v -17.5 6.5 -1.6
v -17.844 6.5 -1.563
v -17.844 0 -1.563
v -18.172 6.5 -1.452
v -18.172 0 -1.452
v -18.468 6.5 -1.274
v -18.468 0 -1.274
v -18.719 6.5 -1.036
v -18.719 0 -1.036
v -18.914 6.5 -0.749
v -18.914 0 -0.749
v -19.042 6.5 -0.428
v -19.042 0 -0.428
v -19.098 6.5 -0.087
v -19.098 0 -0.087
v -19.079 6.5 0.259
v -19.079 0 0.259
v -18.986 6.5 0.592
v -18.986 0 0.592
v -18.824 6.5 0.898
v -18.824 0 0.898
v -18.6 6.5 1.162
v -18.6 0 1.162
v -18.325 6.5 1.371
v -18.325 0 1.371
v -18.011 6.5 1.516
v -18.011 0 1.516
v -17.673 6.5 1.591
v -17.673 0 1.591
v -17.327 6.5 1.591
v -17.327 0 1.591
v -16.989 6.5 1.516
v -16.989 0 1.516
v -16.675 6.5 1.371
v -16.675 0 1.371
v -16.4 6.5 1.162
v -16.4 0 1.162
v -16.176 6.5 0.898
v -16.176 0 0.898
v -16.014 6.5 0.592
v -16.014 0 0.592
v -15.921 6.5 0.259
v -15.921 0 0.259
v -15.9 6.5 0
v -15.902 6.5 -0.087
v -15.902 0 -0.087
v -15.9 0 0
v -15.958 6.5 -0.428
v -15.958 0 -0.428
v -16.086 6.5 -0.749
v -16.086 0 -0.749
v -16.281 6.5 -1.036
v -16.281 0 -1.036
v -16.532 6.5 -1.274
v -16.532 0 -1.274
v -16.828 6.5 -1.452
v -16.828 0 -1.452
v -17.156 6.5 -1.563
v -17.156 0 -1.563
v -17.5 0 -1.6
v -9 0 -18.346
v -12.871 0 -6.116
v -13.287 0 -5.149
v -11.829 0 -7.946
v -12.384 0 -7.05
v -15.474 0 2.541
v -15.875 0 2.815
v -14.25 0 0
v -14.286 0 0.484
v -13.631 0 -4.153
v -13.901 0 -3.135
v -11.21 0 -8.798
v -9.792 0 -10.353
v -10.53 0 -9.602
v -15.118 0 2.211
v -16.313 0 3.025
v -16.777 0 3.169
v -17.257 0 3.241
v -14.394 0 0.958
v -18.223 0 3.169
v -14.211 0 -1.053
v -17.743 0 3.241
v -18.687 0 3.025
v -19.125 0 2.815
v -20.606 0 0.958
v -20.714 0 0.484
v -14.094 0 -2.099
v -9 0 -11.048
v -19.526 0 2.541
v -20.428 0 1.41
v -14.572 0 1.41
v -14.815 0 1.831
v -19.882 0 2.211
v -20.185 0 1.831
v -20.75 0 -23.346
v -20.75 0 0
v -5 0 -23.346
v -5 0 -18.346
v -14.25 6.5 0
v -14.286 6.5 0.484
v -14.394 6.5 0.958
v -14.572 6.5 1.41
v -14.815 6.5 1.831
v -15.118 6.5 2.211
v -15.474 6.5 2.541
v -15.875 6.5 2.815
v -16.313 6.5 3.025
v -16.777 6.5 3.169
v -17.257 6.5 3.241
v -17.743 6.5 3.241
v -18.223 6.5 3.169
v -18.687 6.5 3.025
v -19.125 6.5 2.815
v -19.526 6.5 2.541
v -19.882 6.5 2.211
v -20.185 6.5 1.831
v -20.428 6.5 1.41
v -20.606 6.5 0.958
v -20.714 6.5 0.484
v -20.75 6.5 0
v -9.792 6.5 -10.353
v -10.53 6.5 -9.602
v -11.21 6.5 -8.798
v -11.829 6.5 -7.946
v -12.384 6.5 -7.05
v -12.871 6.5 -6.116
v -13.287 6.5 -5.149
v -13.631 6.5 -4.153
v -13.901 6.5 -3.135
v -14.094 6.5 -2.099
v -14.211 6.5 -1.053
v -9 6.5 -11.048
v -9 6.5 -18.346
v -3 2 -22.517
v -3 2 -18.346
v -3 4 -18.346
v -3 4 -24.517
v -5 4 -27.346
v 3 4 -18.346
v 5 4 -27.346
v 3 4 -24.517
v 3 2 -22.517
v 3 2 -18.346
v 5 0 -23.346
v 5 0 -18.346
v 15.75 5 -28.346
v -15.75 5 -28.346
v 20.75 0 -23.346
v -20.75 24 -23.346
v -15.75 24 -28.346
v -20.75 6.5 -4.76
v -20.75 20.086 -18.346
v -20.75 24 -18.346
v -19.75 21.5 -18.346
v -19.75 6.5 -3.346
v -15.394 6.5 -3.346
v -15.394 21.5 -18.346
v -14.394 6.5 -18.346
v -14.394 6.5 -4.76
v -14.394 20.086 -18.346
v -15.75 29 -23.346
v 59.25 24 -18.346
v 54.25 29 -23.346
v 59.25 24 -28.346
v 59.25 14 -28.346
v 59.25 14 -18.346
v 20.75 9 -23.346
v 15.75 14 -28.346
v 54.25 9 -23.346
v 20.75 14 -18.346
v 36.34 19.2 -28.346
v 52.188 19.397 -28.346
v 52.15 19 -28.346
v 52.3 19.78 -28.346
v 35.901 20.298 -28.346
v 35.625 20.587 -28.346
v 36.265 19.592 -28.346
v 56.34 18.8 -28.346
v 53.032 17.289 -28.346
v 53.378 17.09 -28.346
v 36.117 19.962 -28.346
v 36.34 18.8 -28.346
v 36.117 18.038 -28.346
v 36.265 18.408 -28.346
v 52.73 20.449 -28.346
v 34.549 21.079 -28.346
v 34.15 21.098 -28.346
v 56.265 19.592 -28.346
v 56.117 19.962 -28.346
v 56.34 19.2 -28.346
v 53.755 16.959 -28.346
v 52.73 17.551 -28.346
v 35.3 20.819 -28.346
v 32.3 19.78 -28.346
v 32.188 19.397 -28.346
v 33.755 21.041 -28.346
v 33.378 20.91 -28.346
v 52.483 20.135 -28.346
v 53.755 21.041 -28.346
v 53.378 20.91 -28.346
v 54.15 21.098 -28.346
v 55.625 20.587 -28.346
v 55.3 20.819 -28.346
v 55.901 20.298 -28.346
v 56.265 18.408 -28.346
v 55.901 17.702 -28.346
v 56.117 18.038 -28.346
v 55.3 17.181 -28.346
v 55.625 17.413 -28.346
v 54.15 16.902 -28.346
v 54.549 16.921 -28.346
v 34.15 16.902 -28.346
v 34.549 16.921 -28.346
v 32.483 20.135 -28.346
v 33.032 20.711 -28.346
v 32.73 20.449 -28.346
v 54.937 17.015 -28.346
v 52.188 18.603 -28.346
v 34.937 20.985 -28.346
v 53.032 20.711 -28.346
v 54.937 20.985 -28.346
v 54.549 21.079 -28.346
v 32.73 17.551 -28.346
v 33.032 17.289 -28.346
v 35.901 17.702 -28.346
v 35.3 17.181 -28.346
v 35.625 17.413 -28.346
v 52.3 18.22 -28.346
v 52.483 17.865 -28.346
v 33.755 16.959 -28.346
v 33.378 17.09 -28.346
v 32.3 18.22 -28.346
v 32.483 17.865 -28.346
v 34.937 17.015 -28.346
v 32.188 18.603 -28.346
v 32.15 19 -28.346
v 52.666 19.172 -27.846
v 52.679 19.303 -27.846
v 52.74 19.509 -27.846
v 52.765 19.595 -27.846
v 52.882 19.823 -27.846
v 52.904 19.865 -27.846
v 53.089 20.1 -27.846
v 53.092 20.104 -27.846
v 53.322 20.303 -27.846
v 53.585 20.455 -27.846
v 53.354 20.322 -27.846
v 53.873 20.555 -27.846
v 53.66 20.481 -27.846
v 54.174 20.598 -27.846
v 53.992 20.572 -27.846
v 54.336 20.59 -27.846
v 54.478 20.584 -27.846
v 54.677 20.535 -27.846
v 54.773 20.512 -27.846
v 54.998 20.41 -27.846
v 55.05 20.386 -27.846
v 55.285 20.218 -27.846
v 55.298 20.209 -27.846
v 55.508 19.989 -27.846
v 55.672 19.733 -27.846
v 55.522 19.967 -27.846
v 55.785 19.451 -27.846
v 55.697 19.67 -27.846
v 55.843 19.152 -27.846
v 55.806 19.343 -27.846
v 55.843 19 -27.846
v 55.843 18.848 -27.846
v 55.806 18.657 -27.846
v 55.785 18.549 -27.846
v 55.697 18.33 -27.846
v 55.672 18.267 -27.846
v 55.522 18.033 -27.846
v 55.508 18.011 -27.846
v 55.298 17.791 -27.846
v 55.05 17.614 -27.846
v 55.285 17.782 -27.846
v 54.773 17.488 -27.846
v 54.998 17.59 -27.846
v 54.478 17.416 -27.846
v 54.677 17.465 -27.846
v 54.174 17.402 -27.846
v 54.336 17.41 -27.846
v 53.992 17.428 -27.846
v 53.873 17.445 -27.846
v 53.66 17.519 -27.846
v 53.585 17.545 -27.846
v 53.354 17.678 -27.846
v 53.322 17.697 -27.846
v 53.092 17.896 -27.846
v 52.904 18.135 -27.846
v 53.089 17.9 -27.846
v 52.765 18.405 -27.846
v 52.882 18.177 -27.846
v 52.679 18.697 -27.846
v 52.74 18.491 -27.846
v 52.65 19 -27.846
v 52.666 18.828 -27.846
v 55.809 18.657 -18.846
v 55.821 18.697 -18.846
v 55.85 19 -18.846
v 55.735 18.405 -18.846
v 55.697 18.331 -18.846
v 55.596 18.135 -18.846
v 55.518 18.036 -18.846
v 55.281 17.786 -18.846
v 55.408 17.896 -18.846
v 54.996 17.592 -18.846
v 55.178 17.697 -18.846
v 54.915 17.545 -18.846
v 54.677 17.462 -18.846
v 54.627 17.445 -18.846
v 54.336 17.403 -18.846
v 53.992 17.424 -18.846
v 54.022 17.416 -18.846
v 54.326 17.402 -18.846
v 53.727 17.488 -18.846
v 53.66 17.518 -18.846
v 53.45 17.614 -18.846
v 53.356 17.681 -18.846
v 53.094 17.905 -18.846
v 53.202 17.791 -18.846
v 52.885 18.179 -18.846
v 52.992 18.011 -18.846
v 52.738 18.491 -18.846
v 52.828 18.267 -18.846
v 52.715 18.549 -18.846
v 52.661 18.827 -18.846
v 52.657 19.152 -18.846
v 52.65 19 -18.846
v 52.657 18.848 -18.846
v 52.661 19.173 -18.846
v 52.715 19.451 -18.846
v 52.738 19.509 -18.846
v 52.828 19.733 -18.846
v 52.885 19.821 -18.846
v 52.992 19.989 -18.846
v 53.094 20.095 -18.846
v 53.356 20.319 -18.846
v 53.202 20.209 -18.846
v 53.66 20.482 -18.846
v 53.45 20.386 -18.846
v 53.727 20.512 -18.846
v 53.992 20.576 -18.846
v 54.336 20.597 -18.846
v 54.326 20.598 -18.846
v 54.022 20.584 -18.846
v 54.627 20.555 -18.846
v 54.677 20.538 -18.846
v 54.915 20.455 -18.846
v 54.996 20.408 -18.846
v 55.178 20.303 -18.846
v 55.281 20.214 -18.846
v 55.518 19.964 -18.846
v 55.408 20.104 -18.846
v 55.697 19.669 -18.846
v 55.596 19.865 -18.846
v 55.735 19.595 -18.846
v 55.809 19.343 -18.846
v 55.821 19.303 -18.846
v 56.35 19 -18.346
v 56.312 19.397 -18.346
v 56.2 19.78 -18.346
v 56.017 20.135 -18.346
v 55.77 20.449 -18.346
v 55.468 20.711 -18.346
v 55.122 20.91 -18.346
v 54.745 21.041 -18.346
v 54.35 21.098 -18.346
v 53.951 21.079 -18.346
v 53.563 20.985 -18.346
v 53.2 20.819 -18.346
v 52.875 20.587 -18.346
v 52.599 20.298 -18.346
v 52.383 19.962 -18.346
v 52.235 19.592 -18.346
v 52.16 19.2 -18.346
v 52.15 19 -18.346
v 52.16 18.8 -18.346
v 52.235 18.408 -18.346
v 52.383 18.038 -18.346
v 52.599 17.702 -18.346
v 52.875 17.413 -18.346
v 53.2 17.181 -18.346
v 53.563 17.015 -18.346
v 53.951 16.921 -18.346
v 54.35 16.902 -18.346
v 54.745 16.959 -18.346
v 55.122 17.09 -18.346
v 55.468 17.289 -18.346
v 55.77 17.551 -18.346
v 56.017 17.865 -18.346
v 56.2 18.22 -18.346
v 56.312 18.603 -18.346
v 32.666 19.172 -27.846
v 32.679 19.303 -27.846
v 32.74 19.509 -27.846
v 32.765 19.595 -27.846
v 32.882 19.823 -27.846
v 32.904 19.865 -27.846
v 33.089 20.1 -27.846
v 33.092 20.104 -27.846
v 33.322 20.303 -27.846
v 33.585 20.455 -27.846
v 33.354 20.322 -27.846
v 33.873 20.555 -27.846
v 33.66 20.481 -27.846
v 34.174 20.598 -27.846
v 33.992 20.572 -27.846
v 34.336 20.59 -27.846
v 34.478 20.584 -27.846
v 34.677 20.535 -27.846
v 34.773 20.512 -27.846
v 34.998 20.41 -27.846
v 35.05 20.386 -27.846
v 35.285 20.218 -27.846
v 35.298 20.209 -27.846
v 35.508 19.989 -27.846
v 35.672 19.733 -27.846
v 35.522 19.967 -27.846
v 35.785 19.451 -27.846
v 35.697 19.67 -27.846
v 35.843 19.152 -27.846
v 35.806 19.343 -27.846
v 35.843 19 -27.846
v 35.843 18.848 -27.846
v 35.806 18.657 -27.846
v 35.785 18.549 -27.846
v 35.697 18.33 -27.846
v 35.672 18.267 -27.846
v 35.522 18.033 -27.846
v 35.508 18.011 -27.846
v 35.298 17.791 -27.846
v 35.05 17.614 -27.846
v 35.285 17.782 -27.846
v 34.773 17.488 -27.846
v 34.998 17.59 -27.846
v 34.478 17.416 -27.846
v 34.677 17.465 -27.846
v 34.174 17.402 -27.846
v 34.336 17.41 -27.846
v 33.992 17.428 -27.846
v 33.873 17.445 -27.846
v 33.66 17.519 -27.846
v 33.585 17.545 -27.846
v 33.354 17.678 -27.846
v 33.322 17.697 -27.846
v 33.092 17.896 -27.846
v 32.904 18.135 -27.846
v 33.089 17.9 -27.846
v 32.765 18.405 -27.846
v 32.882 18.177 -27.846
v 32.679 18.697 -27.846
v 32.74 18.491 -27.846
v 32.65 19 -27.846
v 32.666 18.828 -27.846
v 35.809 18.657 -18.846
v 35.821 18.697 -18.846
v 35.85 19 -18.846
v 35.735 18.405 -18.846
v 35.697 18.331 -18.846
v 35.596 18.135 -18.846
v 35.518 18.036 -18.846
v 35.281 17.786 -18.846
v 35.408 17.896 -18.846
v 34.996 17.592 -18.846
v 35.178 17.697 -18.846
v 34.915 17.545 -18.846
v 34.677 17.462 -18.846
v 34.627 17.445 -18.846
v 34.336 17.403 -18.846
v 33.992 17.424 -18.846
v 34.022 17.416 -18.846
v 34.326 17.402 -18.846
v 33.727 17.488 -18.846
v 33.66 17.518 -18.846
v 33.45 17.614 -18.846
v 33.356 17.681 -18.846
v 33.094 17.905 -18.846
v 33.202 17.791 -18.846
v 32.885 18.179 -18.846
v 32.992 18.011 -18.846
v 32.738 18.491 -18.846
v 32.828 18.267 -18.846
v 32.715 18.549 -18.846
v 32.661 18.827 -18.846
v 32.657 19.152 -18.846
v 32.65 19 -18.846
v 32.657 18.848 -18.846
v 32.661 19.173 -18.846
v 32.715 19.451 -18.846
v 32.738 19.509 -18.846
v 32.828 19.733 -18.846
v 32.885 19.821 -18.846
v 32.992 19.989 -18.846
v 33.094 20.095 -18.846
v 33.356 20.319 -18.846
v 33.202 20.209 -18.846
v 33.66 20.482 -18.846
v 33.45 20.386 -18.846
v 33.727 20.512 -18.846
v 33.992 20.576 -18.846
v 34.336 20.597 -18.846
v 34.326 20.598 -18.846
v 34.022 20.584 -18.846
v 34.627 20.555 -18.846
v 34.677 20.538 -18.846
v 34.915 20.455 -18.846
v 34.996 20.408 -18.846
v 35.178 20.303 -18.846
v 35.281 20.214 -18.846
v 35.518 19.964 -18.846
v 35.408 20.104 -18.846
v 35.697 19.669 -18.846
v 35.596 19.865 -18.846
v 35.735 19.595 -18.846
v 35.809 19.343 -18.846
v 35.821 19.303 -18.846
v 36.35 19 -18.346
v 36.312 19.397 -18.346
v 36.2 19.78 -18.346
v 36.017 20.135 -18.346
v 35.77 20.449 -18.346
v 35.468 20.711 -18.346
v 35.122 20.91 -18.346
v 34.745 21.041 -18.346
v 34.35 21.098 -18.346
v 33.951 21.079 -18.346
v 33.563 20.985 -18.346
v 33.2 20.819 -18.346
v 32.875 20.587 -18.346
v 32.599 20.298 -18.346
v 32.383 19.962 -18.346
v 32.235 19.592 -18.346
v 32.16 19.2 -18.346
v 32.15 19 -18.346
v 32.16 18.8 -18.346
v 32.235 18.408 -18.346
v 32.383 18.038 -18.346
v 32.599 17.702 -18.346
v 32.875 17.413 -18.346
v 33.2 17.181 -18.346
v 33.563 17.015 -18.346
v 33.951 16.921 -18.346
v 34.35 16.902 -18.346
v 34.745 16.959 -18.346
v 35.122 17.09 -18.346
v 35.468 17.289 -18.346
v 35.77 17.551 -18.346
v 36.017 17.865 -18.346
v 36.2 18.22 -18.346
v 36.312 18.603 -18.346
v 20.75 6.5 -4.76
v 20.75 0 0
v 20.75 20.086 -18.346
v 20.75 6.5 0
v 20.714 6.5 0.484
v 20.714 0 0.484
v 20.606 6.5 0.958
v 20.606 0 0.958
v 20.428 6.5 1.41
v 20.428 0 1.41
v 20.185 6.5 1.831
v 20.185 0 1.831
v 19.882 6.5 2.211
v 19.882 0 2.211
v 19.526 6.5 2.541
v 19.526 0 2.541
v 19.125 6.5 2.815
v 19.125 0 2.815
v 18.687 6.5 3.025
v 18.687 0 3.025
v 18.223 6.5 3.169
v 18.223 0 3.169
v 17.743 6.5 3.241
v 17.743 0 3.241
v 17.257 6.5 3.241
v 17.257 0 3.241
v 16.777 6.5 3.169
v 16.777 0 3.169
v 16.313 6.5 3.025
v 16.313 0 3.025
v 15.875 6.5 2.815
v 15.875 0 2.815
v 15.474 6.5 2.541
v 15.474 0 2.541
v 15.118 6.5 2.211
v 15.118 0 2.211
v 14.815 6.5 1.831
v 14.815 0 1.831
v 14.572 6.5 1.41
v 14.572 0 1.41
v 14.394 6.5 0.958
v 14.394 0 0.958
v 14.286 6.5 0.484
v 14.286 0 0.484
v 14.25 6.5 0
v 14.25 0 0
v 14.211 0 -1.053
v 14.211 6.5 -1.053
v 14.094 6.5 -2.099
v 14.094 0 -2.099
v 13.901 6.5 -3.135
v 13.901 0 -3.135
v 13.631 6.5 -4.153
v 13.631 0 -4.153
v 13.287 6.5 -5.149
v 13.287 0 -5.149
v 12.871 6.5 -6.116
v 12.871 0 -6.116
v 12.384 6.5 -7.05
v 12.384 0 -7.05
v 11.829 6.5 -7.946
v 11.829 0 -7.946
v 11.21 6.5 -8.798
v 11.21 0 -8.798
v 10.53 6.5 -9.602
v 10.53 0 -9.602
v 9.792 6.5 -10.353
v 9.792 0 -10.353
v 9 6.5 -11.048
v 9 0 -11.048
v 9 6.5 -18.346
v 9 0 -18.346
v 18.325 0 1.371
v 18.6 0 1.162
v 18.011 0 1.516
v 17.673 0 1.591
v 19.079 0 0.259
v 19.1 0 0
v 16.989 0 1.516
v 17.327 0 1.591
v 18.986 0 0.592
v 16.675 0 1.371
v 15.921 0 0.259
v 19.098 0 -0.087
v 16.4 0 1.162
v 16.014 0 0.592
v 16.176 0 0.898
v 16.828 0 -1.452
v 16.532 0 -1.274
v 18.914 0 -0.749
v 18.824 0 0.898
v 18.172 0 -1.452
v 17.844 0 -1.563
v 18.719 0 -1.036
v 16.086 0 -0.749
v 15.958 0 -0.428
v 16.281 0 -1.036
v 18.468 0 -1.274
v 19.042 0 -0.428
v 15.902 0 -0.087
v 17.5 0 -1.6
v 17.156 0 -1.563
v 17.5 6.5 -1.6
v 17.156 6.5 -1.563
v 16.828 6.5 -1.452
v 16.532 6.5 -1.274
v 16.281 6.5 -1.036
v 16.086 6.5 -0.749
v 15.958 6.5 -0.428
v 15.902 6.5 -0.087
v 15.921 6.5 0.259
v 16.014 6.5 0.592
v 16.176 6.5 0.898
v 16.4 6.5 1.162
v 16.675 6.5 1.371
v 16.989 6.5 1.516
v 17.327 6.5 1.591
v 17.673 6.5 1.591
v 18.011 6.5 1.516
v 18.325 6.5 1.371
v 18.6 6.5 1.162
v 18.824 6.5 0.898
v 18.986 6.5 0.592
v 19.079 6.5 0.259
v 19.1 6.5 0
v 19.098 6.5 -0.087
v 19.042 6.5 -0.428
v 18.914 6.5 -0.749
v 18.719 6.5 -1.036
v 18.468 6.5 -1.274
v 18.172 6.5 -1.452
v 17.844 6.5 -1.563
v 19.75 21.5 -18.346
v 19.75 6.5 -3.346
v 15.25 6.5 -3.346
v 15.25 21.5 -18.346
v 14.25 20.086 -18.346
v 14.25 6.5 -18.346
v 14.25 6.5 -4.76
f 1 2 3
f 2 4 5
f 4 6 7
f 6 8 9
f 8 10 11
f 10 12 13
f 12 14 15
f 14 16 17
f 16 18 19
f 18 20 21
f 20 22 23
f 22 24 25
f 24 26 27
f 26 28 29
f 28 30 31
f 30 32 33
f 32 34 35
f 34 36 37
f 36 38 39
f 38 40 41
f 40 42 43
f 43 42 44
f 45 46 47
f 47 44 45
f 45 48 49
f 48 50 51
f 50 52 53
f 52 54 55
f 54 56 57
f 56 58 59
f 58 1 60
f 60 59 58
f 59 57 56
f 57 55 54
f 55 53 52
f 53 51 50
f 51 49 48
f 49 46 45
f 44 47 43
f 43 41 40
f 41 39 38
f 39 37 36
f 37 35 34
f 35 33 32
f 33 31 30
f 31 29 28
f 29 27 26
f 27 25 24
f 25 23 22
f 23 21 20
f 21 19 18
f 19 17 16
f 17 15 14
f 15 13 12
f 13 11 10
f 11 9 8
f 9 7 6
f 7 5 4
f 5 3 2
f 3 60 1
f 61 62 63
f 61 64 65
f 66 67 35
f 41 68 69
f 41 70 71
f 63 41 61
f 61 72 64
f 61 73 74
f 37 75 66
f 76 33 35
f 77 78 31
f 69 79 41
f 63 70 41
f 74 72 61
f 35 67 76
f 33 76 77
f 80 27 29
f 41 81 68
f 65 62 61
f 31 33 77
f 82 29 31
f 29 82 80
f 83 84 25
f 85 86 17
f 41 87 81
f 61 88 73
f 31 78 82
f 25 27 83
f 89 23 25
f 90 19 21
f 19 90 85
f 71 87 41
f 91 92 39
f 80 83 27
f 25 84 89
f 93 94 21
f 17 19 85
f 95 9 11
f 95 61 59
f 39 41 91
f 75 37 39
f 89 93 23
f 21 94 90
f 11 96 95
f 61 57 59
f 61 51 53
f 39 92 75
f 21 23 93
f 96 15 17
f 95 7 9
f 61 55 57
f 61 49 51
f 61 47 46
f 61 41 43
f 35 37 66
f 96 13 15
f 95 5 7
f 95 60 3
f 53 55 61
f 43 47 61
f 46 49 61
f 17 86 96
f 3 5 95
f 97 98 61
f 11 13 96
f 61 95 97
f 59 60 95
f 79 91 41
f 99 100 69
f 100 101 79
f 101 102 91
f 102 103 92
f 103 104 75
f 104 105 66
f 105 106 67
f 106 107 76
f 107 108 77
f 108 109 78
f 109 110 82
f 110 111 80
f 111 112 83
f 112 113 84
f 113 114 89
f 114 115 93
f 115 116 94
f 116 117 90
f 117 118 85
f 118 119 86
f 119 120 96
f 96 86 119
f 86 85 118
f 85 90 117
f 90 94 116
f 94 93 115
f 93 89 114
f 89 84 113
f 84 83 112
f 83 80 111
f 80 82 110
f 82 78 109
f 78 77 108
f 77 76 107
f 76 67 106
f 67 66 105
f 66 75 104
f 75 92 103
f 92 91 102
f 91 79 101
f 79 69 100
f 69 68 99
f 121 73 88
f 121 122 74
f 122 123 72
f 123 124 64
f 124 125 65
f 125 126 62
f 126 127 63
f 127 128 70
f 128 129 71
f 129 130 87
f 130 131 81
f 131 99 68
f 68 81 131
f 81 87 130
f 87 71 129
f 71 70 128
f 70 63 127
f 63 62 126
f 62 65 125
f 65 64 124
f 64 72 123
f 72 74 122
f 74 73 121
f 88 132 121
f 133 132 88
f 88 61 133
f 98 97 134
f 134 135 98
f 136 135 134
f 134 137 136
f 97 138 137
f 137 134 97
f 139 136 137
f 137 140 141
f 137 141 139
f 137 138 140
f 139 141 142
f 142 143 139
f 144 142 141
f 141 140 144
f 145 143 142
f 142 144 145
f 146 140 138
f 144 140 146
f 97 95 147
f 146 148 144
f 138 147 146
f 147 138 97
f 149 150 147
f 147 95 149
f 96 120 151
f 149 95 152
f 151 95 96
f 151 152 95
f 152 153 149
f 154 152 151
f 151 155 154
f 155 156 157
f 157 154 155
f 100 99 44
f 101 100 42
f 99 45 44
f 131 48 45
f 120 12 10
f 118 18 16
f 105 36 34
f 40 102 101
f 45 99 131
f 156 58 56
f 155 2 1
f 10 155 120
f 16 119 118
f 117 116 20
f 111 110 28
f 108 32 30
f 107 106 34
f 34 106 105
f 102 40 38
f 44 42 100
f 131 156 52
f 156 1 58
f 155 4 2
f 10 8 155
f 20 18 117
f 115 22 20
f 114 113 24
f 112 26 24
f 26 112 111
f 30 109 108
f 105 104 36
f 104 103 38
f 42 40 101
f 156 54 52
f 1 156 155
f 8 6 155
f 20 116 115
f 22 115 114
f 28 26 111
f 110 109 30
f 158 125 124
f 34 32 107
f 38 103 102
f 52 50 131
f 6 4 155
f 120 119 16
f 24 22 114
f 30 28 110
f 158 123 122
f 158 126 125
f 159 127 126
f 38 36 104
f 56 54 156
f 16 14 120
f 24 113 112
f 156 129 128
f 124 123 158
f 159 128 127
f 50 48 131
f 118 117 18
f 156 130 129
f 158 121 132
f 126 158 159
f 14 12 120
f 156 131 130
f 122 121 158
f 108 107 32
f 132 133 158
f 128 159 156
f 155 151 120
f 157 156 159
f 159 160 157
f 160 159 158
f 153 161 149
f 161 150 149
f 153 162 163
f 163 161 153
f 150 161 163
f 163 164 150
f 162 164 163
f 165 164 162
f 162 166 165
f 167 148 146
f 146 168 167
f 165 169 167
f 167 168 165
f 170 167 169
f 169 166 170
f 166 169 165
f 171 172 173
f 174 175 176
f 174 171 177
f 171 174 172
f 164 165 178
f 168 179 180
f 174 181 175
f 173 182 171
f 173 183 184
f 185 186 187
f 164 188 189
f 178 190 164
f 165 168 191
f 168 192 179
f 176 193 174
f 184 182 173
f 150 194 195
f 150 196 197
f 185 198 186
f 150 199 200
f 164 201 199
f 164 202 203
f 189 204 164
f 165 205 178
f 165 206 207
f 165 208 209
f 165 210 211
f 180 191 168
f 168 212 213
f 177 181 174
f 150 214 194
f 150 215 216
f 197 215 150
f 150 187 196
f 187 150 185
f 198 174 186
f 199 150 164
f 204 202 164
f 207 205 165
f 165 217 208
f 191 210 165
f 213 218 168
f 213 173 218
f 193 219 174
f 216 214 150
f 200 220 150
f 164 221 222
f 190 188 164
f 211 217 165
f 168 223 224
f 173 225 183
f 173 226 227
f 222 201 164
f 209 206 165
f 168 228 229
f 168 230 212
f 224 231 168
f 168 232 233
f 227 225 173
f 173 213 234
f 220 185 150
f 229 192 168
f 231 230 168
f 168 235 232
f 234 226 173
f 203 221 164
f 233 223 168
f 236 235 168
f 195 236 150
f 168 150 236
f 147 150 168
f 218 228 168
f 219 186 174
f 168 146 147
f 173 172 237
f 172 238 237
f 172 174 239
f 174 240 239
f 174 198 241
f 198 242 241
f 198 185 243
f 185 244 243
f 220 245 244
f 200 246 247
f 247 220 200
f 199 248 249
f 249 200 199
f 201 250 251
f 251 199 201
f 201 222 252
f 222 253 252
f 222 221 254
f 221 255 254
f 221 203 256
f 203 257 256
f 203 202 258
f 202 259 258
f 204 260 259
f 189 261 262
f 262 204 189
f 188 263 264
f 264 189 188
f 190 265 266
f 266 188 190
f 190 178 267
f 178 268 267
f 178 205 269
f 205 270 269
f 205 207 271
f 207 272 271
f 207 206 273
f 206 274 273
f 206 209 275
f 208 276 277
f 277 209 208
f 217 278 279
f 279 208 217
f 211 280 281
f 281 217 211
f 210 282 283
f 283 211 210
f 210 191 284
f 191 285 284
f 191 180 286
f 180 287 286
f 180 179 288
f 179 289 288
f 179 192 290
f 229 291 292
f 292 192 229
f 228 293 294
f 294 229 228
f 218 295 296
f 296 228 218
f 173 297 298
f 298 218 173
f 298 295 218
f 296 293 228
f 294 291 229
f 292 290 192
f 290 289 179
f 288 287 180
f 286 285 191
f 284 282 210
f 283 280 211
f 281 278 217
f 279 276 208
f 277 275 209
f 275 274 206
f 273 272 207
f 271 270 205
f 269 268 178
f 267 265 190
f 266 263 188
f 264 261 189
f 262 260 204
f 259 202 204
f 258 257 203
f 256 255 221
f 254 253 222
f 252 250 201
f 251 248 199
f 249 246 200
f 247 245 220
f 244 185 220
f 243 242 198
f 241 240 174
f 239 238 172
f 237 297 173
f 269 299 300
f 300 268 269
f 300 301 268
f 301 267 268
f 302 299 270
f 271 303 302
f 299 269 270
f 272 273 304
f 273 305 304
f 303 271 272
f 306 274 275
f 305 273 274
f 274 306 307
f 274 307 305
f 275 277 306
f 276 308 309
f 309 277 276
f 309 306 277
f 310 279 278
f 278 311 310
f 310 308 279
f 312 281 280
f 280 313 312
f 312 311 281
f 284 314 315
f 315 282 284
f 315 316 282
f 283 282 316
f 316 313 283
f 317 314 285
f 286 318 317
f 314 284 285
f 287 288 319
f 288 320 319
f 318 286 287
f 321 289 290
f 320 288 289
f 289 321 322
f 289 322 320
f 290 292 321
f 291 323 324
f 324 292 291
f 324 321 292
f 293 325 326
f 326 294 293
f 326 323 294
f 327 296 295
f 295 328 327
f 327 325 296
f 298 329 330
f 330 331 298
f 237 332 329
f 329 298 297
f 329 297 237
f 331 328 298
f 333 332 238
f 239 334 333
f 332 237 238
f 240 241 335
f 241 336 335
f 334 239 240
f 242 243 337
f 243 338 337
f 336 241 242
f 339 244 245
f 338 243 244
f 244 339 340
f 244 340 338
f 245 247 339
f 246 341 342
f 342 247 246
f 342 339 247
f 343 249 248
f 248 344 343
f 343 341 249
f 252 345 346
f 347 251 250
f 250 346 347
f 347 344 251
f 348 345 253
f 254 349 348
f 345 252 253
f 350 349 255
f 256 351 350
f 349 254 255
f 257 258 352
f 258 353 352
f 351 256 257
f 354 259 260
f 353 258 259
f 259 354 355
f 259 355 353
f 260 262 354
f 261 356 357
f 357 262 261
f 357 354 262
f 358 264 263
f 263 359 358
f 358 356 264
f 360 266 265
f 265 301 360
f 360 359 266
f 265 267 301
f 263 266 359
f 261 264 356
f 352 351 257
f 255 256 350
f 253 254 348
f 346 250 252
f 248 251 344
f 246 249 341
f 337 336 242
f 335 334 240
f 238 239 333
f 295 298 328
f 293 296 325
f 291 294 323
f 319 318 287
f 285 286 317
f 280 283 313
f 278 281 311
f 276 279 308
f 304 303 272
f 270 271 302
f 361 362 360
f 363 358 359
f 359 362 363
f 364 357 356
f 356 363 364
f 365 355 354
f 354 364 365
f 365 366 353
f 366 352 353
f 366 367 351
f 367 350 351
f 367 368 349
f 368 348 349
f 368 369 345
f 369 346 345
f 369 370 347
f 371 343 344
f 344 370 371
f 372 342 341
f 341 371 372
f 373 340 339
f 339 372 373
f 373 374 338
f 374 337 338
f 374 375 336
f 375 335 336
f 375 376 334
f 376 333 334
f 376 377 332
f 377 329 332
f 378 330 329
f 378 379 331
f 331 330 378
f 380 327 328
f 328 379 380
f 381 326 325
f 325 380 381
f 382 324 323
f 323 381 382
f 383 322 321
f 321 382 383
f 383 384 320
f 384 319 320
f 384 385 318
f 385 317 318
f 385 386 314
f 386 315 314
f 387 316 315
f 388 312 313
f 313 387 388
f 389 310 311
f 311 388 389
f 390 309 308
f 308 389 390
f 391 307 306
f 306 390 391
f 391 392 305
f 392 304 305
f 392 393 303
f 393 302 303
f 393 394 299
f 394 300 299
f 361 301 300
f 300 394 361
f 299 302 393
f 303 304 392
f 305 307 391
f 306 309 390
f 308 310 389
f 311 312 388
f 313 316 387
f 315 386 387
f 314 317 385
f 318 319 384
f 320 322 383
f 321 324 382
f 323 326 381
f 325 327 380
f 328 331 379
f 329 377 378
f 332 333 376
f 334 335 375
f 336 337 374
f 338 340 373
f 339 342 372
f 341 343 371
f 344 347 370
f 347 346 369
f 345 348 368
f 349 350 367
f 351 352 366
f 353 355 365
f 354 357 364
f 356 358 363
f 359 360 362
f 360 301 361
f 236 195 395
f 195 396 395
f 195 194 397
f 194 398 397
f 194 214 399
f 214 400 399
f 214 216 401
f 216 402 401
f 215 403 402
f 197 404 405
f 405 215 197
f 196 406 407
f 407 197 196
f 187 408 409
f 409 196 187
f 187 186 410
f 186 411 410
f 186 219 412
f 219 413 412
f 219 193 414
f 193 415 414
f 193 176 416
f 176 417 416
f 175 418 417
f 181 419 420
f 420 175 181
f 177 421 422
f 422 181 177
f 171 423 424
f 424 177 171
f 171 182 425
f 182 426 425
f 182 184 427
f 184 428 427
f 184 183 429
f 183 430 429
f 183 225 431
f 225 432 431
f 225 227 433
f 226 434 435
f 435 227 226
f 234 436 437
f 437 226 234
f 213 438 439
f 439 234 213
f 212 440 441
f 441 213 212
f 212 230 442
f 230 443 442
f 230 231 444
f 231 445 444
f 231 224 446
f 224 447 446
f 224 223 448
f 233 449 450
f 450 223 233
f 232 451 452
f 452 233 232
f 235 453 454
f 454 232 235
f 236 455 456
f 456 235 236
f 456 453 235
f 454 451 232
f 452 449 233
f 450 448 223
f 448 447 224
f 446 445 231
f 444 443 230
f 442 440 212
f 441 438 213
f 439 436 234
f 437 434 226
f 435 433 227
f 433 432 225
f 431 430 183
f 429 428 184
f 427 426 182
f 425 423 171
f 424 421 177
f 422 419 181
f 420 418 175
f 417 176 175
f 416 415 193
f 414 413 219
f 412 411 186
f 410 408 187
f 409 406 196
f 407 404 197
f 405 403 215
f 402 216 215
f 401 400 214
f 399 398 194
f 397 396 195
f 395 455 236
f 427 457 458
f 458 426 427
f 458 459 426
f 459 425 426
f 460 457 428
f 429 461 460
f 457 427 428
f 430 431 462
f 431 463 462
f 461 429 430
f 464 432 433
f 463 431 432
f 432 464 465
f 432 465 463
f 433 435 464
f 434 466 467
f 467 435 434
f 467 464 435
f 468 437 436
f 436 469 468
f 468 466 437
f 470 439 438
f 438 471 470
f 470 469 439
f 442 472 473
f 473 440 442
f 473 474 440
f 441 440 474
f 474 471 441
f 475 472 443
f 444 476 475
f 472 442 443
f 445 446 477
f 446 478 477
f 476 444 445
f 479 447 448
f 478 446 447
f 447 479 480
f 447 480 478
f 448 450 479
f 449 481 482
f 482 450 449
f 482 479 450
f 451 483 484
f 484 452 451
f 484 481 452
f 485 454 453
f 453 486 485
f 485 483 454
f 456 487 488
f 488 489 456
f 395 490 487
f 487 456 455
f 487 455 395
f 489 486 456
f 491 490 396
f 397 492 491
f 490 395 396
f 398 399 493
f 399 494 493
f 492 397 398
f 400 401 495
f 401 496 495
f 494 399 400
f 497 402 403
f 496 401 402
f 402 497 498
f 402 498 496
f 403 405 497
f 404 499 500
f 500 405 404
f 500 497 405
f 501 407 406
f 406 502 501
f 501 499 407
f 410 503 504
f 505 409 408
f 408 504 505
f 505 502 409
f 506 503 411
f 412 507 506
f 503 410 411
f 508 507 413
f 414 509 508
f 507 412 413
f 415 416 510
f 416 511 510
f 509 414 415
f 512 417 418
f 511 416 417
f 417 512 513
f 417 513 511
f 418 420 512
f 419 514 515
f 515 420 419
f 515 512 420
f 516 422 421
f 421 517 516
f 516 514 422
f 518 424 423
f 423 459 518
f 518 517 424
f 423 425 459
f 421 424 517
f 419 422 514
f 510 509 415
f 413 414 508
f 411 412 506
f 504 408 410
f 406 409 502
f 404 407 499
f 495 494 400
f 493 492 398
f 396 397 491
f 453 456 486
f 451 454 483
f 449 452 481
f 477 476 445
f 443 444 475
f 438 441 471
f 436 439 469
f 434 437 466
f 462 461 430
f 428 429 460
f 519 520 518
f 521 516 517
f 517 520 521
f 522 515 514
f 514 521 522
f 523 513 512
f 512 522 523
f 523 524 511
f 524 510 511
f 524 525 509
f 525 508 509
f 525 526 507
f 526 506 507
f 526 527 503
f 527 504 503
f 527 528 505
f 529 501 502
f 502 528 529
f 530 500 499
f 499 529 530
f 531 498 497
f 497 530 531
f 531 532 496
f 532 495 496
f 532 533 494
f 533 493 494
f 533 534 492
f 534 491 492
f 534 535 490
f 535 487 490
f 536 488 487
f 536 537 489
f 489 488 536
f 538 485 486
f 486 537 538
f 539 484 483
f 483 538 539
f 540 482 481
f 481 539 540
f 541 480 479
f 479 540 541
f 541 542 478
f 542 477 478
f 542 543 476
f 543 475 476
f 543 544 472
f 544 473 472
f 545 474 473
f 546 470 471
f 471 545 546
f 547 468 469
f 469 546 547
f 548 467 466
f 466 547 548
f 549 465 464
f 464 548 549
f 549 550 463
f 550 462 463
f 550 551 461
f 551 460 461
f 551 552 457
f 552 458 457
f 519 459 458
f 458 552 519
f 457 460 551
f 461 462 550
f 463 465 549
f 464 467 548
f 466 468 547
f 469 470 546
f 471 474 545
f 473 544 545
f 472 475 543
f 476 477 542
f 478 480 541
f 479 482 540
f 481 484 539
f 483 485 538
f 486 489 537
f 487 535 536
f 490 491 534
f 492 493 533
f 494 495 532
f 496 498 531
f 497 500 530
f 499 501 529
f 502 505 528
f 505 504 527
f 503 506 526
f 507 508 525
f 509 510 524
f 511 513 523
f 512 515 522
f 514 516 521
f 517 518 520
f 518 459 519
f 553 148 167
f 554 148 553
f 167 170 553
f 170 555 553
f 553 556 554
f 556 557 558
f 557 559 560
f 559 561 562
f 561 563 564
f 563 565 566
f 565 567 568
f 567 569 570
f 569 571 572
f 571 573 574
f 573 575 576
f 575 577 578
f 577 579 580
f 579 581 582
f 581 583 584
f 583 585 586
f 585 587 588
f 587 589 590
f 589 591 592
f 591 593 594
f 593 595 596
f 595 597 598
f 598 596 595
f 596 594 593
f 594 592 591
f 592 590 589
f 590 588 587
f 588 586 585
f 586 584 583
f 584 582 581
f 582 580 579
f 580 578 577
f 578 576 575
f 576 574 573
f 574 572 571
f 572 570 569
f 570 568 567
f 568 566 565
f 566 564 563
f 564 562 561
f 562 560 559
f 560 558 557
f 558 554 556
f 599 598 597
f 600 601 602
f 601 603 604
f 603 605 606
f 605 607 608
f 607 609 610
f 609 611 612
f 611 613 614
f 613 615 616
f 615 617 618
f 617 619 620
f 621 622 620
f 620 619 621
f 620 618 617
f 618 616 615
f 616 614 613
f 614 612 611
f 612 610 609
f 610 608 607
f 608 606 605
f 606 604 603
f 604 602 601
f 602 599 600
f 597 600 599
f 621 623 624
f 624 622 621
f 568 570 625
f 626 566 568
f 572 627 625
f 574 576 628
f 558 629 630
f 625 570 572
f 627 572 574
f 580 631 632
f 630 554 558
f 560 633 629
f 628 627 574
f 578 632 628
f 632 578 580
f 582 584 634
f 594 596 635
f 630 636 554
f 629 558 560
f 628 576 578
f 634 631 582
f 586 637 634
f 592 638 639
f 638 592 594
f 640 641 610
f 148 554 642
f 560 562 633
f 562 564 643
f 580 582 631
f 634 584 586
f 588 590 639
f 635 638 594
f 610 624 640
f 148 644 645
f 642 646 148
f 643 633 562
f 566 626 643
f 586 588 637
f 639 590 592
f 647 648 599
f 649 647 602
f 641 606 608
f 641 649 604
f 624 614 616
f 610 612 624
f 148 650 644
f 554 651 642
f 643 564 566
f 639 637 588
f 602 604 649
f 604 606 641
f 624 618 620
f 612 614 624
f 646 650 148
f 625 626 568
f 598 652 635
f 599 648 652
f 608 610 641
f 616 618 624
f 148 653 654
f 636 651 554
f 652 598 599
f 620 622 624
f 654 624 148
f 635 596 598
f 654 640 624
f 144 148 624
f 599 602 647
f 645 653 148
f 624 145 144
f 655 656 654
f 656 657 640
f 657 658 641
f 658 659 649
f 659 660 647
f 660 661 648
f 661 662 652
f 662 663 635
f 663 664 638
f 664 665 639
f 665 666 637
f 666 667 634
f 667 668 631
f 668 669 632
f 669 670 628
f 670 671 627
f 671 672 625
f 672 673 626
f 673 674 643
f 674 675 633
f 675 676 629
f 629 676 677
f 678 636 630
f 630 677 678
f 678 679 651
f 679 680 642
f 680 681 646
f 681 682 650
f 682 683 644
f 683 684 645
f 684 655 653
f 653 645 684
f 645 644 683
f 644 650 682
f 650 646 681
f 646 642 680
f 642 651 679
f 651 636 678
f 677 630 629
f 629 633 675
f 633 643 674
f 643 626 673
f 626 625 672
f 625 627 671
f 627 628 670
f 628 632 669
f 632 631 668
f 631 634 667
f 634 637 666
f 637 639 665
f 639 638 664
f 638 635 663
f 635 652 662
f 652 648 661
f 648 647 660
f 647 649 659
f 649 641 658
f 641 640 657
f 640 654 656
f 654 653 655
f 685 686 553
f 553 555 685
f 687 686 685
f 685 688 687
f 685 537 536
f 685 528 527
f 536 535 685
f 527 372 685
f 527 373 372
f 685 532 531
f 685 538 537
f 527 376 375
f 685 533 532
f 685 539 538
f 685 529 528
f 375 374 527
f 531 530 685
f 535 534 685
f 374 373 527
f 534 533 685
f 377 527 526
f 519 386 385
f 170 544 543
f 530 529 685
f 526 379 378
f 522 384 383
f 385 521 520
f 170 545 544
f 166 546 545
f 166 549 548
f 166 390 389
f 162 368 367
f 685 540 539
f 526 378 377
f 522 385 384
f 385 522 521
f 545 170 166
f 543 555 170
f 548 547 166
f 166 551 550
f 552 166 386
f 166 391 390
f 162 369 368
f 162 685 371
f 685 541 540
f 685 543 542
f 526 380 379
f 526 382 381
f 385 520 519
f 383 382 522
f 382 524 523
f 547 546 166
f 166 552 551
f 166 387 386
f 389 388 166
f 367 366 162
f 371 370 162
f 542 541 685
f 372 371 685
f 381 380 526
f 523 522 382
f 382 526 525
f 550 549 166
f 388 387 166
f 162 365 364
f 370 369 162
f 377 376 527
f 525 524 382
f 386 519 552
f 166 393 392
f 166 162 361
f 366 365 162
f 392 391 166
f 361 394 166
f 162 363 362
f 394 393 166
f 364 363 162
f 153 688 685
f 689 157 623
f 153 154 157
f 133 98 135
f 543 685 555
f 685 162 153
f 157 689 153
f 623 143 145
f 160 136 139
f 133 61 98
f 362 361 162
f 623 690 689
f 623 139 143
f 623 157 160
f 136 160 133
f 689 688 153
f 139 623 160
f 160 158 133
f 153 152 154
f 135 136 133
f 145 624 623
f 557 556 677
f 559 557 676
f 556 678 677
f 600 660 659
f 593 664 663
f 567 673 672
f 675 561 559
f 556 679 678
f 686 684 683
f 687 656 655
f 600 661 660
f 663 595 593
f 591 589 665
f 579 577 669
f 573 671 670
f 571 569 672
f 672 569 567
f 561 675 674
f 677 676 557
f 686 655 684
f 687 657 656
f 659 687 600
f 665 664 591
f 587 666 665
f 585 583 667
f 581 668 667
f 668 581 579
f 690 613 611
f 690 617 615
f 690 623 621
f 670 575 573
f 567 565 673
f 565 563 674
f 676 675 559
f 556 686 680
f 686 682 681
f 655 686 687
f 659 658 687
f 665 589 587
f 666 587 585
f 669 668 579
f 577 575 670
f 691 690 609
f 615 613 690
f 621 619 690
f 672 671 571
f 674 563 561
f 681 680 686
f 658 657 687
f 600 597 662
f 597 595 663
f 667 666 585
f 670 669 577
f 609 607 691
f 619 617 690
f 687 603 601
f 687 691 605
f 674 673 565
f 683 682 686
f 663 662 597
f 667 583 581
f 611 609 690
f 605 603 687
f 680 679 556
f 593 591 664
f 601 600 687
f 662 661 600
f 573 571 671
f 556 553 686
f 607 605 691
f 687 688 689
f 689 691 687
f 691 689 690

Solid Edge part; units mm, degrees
sketch "Sketch1" plane through (0, 0, 0) normal (0, -1, 0) x (1, 0, 0)
  circle A0 centre (-17.5, 0) radius 1.6
  line L0 (-20.75, -18.3456) -> (-20.75, 0)
  line L1 (-9, -18.3456) -> (-20.75, -18.3456)
  line L2 (-9, -11.0482) -> (-9, -18.3456)
  arc A1 (-14.25, 0) -> (-9, -11.0482) centre (0, 0) ccw
  arc A2 (-20.75, 0) -> (-14.25, 0) centre (-17.5, 0) cw
  arc A3 (9, -11.0482) -> (14.25, 0) centre (0, 0) ccw
  arc A4 (14.25, 0) -> (20.75, 0) centre (17.5, 0) cw
  line L3 (20.75, 0) -> (20.75, -18.3456)
  line L4 (20.75, -18.3456) -> (9, -18.3456)
  line L5 (9, -18.3456) -> (9, -11.0482)
  circle A5 centre (17.5, 0) radius 1.6
  dimension "D1" = 35
  dimension "D2" = 17.5
  dimension "D3" = 6.5
  dimension "D4" = 9
  dimension "D5" = 9
extrude "Protrusion1" add sketch "Sketch1" against normal blind 6.5
sketch "Sketch2" plane through (14.875, 3.25, -18.3456) normal (0, 0, -1) x (0, -1, 0)
  line L0 (3.25, 35.625) -> (-25.75, 35.625)
  line L1 (-25.75, 35.625) -> (-25.75, -44.375)
  line L2 (-25.75, -44.375) -> (-5.75, -44.375)
  line L3 (-5.75, -44.375) -> (-5.75, -5.875)
  line L4 (-5.75, -5.875) -> (3.25, -5.875)
  line L5 (3.25, -5.875) -> (3.25, 35.625)
  dimension "D1" = 41.5
  dimension "D2" = 80
  dimension "D3" = 20
  dimension "D4" = 29
extrude "ExtrudedProtrusion_3" add sketch "Sketch2" along normal blind 10
sketch "Sketch3" plane through (9.25, 14.5, -28.3456) normal (0, 0, -1) x (0, 1, 0)
  line L0 (-14.5, -6.25) -> (-10.5, -6.25)
  line L1 (-10.5, -6.25) -> (-10.5, -12.25)
  line L2 (-10.5, -12.25) -> (-14.5, -12.25)
  line L3 (-14.5, -12.25) -> (-14.5, -6.25)
  dimension "D1" = 4
  dimension "D2" = 6
extrude "ExtrudedCutout_1" cut sketch "Sketch3" against normal blind 45
sketch "Sketch4" plane through (-20.75, 14.5, -14.1728) normal (-1, 0, 0) x (0, 1, 0)
  line L0 (-8, 4.1728) -> (-8, -10.8272)
  line L1 (7, 4.1728) -> (-8, -10.8272)
  line L2 (-8, 4.1728) -> (7, 4.1728)
  dimension "D1" = 15
  dimension "D2" = 15
extrude "Protrusion2" add sketch "Sketch4" against normal up to vertex (41.5 mm away)
sketch "Sketch5" plane through (9.25, 19, -18.3456) normal (0, 0, 1) x (1, 0, 0)
  line L0 (-23.6435, -12.5) -> (-23.6435, 24.588)
  line L1 (-23.6435, 24.588) -> (5, 24.588)
  line L2 (5, 24.588) -> (5, -12.5)
  line L3 (5, -12.5) -> (-23.6435, -12.5)
extrude "ExtrudedCutout_2" cut sketch "Sketch5" along normal blind 110
sketch "Sketch6" plane through (19.25, 14.5, -18.3456) normal (0, 0, 1) x (-1, 0, 0)
  circle A0 centre (-35, -4.5) radius 1.6
  circle A1 centre (-15, -4.5) radius 1.6
extrude "Cutout1" cut sketch "Sketch6" against normal up to vertex (24.5 mm away)
chamfer "Letörés_1" distance 5 angle 45 11 edges at (19.25, 29, -28.3456) (-20.75, 29, -23.3456) (19.25, 29, -18.3456) (59.25, 29, -23.3456) (59.25, 9, -23.3456) (40, 9, -28.3456) (11.875, 0, -28.3456) (-11.875, 0, -28.3456) (40, 9, -18.3456) (-20.75, 14.5, -28.3456) (20.75, 4.5, -28.3456)
chamfer "Letörés_2" distance 1 angle 45 4 edges at (20.75, 14, -10.8456) (14.25, 14, -10.8456) (-14.3935, 14, -10.8456) (-20.75, 14, -10.8456)
chamfer "Letörés_3" distance 0.5 angle 45 4 edges at (35.85, 19, -28.3456) (35.85, 19, -18.3456) (55.85, 19, -28.3456) (55.85, 19, -18.3456)
chamfer "Letörés_4" distance 2 angle 45 4 edges at (3, 0, -20.8456) (3, 2, -25.3456) (-3, 2, -25.3456) (-3, 0, -20.8456)
